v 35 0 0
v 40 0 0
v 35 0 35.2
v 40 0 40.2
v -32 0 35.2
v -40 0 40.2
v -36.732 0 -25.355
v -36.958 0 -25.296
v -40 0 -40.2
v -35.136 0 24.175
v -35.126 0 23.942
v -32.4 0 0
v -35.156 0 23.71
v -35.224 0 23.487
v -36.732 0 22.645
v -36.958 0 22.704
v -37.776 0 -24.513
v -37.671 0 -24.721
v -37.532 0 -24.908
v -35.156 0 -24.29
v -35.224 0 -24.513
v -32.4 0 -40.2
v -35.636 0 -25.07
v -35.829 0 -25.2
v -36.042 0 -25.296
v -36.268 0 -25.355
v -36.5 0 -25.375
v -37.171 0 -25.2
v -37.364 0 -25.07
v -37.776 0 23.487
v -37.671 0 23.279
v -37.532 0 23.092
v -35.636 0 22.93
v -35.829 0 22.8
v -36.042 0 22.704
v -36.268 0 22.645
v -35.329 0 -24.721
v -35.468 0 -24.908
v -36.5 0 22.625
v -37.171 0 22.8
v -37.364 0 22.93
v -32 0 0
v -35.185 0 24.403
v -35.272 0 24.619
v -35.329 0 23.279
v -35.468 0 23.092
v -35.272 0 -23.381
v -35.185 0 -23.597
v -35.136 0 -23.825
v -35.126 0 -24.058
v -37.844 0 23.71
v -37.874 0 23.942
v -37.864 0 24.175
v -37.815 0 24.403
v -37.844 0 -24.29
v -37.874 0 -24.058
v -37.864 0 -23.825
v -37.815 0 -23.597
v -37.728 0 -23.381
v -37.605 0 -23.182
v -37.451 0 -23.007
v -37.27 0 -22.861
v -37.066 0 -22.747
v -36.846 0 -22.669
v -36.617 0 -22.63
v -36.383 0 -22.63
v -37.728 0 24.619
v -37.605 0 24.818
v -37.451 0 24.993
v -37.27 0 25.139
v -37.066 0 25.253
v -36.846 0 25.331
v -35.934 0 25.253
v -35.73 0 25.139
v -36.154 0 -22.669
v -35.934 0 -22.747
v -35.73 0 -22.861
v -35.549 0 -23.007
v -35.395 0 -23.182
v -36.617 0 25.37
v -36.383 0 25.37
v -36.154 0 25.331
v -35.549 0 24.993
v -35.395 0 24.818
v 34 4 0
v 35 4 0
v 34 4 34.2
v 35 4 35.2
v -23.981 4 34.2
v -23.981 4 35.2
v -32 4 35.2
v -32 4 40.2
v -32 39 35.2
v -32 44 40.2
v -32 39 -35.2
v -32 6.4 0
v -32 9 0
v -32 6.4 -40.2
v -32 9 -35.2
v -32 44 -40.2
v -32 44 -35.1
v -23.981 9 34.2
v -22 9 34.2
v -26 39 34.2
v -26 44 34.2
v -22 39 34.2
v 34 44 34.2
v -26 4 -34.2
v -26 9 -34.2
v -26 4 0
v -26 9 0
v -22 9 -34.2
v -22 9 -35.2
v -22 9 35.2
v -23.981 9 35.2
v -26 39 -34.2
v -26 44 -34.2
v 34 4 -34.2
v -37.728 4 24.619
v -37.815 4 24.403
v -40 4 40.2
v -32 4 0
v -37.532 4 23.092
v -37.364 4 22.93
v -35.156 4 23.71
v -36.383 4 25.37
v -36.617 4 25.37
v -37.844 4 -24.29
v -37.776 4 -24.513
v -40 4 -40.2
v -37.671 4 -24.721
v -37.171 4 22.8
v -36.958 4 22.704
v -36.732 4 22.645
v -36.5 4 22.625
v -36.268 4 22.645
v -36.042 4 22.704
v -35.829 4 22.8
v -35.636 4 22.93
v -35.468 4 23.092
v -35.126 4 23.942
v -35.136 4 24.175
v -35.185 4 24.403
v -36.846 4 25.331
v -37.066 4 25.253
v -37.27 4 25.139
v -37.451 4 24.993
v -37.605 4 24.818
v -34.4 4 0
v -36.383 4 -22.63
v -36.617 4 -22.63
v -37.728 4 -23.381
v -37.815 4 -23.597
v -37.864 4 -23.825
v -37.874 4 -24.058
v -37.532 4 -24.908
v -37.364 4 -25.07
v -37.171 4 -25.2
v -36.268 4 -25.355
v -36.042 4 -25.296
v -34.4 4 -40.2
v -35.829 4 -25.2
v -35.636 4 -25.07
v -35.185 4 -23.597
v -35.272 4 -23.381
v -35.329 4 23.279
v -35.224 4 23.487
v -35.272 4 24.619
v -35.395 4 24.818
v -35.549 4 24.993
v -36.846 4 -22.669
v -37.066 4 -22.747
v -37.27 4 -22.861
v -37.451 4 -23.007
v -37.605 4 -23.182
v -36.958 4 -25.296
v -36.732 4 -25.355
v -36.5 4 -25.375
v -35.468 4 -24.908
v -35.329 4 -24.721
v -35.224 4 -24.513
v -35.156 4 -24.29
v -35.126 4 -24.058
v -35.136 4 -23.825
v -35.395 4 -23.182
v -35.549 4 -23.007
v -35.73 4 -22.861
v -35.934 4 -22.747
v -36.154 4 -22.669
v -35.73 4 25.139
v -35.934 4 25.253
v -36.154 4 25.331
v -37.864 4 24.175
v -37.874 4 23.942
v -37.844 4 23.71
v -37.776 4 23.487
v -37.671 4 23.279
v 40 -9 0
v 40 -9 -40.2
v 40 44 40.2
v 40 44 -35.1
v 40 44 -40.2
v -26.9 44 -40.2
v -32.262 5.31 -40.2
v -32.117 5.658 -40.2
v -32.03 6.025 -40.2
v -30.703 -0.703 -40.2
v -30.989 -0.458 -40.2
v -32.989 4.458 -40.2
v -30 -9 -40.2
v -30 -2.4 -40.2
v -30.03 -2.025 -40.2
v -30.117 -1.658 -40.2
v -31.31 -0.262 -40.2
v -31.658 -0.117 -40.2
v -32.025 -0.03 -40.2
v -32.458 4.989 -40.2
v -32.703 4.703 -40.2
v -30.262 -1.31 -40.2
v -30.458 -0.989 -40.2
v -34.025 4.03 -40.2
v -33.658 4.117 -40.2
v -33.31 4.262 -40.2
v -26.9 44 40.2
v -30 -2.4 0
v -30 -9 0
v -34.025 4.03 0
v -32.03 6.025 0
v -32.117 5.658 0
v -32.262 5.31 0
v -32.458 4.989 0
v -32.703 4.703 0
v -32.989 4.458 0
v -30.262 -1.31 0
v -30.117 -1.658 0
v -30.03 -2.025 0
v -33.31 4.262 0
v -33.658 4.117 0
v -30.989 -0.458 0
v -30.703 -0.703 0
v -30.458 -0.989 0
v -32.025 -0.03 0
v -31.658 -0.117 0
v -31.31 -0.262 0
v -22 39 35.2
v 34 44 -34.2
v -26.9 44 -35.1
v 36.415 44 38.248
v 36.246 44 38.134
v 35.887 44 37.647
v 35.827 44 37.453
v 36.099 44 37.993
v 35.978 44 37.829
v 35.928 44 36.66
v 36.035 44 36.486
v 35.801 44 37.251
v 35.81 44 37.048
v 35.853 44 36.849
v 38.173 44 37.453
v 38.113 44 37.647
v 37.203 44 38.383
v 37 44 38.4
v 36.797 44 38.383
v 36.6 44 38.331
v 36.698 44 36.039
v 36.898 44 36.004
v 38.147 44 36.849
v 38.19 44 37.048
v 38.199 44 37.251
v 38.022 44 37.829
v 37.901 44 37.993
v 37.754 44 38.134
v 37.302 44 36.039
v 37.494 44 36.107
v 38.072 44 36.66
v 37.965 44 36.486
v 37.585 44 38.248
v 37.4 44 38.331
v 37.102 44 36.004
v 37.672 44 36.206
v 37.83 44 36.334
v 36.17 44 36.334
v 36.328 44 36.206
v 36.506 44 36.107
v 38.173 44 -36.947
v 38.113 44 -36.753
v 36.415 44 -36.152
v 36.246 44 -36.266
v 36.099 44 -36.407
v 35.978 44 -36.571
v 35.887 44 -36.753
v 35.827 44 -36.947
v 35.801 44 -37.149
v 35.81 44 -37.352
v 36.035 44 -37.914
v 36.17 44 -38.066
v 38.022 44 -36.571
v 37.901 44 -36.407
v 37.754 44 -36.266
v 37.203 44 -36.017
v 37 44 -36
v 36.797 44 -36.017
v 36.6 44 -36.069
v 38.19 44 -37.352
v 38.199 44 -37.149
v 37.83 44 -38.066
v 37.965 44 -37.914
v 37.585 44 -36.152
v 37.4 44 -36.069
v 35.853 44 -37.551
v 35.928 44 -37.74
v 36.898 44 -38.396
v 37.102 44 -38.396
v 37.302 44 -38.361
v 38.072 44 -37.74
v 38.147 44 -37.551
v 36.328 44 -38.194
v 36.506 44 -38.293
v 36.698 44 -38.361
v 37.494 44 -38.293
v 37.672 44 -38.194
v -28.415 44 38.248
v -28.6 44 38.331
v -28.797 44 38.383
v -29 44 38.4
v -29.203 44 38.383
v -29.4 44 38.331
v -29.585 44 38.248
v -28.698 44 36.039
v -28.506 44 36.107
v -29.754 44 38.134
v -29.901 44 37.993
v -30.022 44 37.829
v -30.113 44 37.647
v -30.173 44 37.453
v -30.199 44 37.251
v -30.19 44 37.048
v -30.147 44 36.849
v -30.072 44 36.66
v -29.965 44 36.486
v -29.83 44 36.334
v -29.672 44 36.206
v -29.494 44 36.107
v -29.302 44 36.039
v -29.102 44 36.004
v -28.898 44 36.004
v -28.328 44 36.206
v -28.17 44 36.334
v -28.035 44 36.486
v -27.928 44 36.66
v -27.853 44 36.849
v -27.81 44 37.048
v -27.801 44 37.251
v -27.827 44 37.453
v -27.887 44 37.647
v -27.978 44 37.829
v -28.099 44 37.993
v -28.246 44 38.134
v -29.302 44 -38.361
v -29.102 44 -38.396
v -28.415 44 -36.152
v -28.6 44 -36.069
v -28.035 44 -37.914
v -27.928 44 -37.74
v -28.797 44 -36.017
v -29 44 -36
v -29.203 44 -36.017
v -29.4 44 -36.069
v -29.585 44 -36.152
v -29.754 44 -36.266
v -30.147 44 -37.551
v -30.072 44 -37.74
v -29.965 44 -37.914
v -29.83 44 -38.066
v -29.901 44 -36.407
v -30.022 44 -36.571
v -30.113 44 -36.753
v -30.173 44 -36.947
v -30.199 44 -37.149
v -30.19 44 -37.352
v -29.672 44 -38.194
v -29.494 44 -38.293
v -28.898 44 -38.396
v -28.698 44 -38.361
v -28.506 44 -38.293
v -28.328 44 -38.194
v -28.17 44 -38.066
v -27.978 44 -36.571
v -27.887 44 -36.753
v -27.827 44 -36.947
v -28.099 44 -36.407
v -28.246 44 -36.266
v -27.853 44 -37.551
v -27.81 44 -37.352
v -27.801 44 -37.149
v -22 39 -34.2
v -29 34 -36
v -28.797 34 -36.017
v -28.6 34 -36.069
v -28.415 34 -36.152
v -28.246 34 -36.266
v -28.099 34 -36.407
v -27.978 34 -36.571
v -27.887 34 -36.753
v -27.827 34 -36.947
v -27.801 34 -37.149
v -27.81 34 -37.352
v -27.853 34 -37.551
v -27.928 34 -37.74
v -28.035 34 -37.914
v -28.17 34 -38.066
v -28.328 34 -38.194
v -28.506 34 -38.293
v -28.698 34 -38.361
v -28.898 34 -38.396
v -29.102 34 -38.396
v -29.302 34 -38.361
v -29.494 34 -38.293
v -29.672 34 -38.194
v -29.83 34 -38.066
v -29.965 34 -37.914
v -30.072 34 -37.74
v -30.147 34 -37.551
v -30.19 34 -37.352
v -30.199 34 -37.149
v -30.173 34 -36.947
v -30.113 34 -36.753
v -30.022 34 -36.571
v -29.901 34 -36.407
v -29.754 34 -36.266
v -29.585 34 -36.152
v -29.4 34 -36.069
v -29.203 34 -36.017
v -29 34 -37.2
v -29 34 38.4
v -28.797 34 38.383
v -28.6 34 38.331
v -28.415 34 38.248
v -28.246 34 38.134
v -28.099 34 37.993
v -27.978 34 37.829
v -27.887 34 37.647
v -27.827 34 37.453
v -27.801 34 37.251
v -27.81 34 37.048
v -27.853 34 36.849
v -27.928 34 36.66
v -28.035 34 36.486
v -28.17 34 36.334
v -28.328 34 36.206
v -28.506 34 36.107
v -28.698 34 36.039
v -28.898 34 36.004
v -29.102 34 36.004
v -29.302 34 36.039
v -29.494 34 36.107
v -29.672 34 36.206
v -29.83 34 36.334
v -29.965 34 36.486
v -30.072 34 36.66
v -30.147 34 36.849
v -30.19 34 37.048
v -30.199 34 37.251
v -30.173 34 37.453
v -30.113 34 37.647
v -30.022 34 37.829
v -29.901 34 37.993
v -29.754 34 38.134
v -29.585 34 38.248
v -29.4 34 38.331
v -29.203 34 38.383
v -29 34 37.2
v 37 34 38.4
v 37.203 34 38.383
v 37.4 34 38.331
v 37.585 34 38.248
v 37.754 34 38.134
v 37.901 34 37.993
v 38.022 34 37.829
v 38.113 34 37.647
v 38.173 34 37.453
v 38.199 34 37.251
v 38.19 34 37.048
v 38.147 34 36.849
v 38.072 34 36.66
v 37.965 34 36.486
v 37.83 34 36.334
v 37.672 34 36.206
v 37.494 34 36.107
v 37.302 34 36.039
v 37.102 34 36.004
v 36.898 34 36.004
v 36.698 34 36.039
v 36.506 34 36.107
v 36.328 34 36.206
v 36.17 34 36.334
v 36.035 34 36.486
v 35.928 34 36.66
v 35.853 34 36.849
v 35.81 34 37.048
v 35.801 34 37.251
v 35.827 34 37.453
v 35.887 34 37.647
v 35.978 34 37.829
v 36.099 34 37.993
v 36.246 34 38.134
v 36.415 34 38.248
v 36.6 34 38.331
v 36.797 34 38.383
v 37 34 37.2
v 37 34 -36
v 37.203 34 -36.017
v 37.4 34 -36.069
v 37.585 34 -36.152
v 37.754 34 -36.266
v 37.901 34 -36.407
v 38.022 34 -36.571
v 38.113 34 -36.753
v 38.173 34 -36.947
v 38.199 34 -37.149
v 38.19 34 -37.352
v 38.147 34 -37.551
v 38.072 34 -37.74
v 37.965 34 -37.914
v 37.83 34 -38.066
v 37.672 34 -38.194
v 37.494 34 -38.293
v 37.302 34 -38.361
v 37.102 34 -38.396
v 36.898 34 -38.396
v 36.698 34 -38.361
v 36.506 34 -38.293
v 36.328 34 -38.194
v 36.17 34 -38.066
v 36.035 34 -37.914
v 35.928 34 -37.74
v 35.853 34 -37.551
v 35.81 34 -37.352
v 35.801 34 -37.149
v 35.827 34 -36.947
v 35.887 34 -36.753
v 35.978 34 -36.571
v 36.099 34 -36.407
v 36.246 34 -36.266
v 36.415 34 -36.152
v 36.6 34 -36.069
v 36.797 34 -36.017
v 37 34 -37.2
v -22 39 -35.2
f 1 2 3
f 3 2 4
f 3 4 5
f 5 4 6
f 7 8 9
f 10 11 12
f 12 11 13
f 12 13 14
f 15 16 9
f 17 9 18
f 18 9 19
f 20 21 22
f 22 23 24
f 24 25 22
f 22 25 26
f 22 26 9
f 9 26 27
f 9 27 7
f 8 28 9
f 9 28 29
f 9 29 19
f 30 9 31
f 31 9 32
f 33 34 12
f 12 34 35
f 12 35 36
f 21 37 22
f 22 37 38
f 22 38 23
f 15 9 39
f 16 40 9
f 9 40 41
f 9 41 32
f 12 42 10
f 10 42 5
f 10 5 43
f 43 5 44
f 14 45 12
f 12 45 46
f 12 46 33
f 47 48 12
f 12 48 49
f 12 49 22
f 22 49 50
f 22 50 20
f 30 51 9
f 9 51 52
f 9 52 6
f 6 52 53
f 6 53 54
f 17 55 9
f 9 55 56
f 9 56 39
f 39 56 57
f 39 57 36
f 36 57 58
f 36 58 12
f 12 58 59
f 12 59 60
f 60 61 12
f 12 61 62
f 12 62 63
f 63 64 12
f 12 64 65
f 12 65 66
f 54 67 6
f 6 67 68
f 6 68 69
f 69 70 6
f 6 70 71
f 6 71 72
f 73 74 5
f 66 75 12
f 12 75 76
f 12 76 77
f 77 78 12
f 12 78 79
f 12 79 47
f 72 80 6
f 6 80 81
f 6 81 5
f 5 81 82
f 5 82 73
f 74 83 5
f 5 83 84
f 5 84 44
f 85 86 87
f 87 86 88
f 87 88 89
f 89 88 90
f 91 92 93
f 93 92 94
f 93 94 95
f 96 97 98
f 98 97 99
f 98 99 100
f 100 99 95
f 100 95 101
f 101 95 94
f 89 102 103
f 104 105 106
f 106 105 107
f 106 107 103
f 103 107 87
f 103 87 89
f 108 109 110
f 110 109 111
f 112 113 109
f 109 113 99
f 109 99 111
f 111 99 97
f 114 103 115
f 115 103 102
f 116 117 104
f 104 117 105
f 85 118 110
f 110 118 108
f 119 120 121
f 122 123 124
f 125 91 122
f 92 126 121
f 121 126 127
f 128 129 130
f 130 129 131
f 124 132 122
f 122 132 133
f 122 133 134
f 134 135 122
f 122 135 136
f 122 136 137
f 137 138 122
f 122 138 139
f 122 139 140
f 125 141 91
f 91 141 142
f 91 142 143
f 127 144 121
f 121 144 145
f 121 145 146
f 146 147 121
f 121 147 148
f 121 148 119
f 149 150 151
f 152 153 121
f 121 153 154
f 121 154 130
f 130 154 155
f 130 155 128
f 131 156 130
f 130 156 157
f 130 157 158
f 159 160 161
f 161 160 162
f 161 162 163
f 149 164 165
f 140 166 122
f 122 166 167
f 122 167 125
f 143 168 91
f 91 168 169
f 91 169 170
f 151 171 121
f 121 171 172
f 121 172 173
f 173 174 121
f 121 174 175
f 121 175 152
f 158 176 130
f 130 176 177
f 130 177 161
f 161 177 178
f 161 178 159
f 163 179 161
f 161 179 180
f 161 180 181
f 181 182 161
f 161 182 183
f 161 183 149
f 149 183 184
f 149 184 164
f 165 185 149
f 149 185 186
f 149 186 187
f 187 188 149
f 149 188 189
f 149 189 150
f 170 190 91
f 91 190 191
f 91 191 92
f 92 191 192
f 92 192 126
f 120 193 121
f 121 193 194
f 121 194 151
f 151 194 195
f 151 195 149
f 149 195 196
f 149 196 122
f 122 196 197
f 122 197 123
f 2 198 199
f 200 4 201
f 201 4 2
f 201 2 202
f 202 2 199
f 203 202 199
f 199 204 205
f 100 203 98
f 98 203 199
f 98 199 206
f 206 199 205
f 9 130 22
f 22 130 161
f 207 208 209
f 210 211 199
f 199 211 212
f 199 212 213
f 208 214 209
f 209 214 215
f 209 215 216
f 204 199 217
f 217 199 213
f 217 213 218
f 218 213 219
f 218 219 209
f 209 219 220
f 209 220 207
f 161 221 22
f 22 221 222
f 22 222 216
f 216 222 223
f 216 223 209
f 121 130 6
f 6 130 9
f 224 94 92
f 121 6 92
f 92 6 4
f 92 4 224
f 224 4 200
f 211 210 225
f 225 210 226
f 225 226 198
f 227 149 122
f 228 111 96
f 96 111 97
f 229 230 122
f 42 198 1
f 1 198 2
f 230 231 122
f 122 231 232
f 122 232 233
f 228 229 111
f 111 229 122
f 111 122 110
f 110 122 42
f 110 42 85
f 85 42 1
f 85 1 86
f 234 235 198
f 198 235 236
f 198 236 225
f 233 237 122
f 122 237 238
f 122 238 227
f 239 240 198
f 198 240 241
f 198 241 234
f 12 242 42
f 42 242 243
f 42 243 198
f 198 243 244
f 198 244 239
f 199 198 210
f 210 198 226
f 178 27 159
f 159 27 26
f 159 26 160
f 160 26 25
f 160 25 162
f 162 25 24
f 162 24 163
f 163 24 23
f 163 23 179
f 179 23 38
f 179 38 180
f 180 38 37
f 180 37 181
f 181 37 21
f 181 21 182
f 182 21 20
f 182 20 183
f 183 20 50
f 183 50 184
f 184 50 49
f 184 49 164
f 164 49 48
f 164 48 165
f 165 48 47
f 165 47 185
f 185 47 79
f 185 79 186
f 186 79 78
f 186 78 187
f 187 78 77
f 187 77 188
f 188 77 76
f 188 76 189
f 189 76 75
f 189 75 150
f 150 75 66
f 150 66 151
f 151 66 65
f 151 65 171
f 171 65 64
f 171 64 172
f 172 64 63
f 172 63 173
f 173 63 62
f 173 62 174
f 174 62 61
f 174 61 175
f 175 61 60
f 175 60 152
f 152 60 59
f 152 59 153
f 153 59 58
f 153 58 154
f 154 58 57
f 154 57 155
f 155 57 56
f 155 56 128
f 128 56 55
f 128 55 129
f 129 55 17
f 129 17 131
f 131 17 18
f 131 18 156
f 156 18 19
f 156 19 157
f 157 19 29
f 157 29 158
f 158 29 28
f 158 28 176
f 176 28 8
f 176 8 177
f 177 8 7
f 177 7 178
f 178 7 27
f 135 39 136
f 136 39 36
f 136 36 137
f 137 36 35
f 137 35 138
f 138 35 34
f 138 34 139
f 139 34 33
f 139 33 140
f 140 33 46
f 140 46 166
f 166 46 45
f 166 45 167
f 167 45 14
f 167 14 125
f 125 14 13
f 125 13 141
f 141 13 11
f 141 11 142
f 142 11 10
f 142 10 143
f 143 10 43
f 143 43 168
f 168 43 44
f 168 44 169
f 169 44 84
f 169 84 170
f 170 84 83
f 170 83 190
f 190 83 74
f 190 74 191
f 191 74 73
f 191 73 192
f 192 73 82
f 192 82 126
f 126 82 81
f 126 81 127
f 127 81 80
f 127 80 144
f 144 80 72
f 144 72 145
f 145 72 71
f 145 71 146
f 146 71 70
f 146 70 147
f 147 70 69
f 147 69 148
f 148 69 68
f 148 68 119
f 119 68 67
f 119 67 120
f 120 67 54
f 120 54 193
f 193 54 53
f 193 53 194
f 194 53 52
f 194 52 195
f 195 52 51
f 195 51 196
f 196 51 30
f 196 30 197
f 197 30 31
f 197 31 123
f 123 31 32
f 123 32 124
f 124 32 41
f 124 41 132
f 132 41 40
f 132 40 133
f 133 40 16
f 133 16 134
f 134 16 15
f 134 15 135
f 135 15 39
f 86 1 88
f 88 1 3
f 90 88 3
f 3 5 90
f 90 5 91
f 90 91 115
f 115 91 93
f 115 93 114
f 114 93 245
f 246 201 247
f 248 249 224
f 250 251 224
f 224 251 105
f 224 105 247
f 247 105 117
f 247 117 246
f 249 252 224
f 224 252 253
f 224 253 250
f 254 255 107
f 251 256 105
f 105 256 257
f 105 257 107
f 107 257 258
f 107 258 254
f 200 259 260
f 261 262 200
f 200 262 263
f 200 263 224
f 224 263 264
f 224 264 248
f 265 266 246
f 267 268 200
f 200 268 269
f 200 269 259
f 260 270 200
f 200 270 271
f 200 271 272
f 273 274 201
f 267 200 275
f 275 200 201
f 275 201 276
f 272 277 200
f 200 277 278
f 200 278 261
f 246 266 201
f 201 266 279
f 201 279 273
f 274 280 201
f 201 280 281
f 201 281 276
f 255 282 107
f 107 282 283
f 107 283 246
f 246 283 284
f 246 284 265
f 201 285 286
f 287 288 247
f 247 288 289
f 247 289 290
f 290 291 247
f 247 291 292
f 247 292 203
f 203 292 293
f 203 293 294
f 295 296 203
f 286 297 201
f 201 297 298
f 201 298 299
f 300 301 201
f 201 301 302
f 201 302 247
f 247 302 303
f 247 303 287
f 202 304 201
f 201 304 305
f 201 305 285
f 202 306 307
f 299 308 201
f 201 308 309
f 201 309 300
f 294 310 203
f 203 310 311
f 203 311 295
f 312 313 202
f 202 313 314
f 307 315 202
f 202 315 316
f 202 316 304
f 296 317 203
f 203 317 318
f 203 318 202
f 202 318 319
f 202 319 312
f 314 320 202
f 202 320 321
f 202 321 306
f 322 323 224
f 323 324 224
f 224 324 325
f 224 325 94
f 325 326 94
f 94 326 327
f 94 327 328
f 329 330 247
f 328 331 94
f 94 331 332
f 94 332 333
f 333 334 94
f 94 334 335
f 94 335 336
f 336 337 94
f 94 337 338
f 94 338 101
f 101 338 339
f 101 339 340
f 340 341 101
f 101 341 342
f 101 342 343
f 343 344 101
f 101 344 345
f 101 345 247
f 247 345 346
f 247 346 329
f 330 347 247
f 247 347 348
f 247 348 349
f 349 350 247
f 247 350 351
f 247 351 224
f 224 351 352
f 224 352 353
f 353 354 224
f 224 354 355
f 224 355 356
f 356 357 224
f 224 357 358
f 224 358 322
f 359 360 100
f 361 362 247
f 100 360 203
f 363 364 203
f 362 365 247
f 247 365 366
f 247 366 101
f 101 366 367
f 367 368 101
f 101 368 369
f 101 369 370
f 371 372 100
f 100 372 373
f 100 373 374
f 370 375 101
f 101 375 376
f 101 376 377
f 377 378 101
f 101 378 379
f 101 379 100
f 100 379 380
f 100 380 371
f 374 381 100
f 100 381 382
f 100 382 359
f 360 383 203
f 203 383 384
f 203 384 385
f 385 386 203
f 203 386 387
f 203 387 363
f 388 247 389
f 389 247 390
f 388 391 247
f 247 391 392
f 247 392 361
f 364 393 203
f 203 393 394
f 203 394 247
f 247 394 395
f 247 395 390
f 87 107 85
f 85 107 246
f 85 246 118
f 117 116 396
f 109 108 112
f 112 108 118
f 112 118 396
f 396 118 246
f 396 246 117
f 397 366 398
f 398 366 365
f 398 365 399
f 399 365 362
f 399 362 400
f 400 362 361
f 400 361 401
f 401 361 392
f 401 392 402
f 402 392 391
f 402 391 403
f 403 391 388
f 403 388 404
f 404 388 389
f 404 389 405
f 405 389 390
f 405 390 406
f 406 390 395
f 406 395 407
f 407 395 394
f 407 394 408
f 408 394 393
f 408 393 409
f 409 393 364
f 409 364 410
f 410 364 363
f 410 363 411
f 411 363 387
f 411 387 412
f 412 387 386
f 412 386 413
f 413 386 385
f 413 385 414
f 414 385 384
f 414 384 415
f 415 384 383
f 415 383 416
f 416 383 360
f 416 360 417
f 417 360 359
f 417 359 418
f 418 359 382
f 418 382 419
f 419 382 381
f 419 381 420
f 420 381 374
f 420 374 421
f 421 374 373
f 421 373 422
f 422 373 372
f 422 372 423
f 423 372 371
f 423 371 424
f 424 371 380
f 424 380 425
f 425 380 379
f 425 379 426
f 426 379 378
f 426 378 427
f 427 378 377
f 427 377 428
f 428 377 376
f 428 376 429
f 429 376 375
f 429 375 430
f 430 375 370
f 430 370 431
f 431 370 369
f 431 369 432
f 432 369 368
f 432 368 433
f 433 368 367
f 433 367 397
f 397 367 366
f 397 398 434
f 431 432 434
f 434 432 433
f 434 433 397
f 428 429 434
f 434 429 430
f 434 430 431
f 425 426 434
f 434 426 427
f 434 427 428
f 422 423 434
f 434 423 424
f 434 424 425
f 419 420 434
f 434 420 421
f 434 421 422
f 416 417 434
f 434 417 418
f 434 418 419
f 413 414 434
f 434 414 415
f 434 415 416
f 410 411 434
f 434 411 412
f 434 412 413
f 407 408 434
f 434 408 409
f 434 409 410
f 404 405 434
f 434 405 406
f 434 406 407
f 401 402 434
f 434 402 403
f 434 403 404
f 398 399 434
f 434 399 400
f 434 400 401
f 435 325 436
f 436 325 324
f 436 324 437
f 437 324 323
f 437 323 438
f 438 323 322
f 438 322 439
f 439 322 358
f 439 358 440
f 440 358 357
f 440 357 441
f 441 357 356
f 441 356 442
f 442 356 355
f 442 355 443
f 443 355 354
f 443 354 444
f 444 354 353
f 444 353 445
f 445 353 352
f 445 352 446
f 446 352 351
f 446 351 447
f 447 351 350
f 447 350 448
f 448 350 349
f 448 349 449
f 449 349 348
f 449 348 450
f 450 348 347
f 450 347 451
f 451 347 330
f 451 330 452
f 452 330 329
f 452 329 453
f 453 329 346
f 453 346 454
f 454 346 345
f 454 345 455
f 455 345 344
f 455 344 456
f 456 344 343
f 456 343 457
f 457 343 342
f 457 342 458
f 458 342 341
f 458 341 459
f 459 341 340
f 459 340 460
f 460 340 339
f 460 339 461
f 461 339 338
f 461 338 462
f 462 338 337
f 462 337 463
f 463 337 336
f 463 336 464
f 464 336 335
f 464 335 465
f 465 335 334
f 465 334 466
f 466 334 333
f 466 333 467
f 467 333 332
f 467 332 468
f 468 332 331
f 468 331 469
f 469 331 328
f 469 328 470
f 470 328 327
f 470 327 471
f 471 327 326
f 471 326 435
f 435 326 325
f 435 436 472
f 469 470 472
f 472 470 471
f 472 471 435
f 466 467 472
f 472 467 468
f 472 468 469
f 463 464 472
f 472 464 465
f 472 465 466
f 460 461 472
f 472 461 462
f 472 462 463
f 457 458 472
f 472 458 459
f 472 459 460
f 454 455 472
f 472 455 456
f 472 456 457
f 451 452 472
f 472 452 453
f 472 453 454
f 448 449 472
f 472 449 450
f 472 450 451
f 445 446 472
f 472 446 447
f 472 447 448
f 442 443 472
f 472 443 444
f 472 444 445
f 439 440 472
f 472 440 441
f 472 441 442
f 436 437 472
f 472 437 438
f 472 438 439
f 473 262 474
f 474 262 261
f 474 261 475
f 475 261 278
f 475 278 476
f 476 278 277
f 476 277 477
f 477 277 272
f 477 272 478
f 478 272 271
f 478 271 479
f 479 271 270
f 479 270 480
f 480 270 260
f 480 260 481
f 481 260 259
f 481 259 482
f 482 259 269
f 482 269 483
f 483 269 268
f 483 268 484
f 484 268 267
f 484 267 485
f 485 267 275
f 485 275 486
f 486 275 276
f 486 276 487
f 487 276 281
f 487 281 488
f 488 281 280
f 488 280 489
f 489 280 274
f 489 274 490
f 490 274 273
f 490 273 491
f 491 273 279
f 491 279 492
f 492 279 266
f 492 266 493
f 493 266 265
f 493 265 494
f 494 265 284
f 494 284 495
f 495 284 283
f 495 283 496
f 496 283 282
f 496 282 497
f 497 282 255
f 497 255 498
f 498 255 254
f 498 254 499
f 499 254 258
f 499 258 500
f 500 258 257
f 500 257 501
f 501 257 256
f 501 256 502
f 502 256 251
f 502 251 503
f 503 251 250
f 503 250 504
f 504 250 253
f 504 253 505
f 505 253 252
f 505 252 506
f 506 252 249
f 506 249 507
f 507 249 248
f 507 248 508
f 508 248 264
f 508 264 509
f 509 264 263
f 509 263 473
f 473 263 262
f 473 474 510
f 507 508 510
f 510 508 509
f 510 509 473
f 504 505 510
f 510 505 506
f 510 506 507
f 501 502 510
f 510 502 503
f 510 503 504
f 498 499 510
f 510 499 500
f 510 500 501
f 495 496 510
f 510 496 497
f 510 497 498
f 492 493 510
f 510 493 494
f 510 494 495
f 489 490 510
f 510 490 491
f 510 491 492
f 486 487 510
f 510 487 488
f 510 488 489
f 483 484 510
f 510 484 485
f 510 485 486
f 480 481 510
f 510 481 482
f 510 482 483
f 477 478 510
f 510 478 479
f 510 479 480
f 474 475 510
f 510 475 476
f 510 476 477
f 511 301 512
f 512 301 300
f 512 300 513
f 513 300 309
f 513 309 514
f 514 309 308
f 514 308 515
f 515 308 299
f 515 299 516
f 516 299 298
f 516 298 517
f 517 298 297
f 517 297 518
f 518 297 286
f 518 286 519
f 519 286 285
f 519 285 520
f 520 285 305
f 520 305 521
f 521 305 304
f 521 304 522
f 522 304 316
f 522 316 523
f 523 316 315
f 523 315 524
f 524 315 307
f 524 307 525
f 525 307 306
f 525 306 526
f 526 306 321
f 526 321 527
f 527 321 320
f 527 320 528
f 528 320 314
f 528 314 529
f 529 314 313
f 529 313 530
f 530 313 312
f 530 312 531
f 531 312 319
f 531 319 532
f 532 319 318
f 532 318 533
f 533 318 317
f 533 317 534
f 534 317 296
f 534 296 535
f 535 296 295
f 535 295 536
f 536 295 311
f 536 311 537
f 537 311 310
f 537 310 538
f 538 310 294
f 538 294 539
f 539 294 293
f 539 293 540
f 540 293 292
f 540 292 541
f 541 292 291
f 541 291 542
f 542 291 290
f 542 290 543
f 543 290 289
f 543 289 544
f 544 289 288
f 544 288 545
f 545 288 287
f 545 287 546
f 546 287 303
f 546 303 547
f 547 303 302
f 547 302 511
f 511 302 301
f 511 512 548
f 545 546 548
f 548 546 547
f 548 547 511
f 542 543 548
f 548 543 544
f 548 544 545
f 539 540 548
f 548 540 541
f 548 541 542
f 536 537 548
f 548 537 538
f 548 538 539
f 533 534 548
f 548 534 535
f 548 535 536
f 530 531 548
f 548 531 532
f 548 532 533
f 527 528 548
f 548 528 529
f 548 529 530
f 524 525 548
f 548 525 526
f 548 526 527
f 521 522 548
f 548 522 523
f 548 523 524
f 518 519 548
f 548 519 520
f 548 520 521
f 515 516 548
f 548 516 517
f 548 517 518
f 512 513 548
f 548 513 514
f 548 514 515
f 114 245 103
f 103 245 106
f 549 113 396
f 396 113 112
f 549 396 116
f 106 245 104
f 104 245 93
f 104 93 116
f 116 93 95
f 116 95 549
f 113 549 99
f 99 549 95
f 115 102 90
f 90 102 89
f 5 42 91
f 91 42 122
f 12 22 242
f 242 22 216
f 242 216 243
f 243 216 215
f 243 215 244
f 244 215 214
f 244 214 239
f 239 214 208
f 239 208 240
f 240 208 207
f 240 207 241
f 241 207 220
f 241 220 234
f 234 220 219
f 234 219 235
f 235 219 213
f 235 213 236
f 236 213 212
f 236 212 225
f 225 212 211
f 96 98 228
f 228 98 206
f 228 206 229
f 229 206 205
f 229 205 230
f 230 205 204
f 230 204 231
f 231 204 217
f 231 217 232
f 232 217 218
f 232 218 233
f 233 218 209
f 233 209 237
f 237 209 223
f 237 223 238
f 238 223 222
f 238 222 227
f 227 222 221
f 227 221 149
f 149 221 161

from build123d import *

# Parameters (mm, degrees)
SKETCH1_W           = 80
SKETCH1_H           = 80.4
BOSS_EXTRUDE1_DEPTH = 4
SKETCH3_W           = 70
SKETCH3_H           = 40.2
BOSS_EXTRUDE3_DEPTH = 9
SKETCH4_R           = 1.375
CUT_EXTRUDE1_DEPTH  = 19
CUT_EXTRUDE4_REACH  = 60.181
SKETCH6_W           = 62
SKETCH6_H           = 35.2
SKETCH7_W           = 72
SKETCH7_H           = 80.4
SKETCH7_W_2         = 60
SKETCH7_H_2         = 68.4
BOSS_EXTRUDE4_DEPTH = 40
SKETCH9_R           = 1.2
CUT_EXTRUDE5_DEPTH  = 10
SKETCH10_W          = 70.4
SKETCH10_H          = 30
CUT_EXTRUDE6_DEPTH  = 10
CUT_EXTRUDE7_DEPTH  = 17
FILLET1_R           = 2.4


with BuildPart() as part:
    # Sketch1 → Boss-Extrude1 (new body)
    with BuildSketch(Plane(origin=(0, 0, 0), x_dir=(1, 0, 0), z_dir=(0, 1, 0))):
        Rectangle(SKETCH1_W, SKETCH1_H)
    extrude(amount=BOSS_EXTRUDE1_DEPTH)

    # Sketch3 → Boss-Extrude3 (add)
    with BuildSketch(Plane.XZ):
        with Locations((5, -20.1)):
            Rectangle(SKETCH3_W, SKETCH3_H)
    extrude(amount=BOSS_EXTRUDE3_DEPTH)

    # Sketch4 → Cut-Extrude1 (cut)
    with BuildSketch(Plane.XZ.offset(9)):
        with Locations(Location((-36.5, 24, 0), (0, 0, 270))):
            Circle(SKETCH4_R)
        with Locations(Location((-36.5, -24, 0), (0, 0, 270))):
            Circle(SKETCH4_R)
    extrude(amount=-CUT_EXTRUDE1_DEPTH, mode=Mode.SUBTRACT)

    # Sketch6 → Cut-Extrude4 (cut, up to next)
    with BuildSketch(Plane(origin=(0, 4, 0), x_dir=(1, 0, 0), z_dir=(0, 1, 0)), mode=Mode.PRIVATE) as cut_extrude4_sk1:
        with Locations((4, -17.6)):
            Rectangle(SKETCH6_W, SKETCH6_H)
    cut_extrude4_tool1 = extrude(cut_extrude4_sk1.sketch, amount=-CUT_EXTRUDE4_REACH, mode=Mode.PRIVATE) & part.part
    add(cut_extrude4_tool1.solids().sort_by_distance((4, 4, 17.6))[0], mode=Mode.SUBTRACT)

    # Sketch7 → Boss-Extrude4 (add)
    with BuildSketch(Plane.XZ.offset(-4)):
        with Locations((4, 0)):
            Rectangle(SKETCH7_W, SKETCH7_H)
        with Locations((4, 0)):
            Rectangle(SKETCH7_W_2, SKETCH7_H_2, mode=Mode.SUBTRACT)
    extrude(amount=-BOSS_EXTRUDE4_DEPTH)

    # Sketch9 → Cut-Extrude5 (cut)
    with BuildSketch(Plane(origin=(0, 44, 0), x_dir=(1, 0, 0), z_dir=(0, 1, 0))):
        with Locations(Location((-29, 37.2, 0), (0, 0, 270))):
            Circle(SKETCH9_R)
        with Locations(Location((37, 37.2, 0), (0, 0, 270))):
            Circle(SKETCH9_R)
        with Locations(Location((37, -37.2, 0), (0, 0, 270))):
            Circle(SKETCH9_R)
        with Locations(Location((-29, -37.2, 0), (0, 0, 270))):
            Circle(SKETCH9_R)
    extrude(amount=-CUT_EXTRUDE5_DEPTH, mode=Mode.SUBTRACT)

    # Sketch10 → Cut-Extrude6 (cut)
    with BuildSketch(Plane.ZY.offset(32)):
        with Locations((0, 24)):
            Rectangle(SKETCH10_W, SKETCH10_H)
    extrude(amount=-CUT_EXTRUDE6_DEPTH, mode=Mode.SUBTRACT)

    # Sketch11 → Cut-Extrude7 (cut)
    with BuildSketch(Plane(origin=(0, 9, 0), x_dir=(1, 0, 0), z_dir=(0, 1, 0))):
        Polygon((-32, 0), (-32, -35.2), (-23.981492028, -35.2), (-23.981492028, -34.2), (-26, -34.2), (-26, 0), align=None)
    extrude(amount=-CUT_EXTRUDE7_DEPTH, mode=Mode.SUBTRACT)

    # Fillet1
    # the kernel refuses this fillet: 2.4 mm, written as the material it adds along each edge
    with BuildSketch(Plane(origin=(-32, 4, 0), x_dir=(0, 1, 0), z_dir=(0, 0, -1)), Plane(origin=(-30, 0, 0), x_dir=(-1, 0, 0), z_dir=(0, 0, -1))) as fillet1_piece_1:
        with BuildLine():
            CenterArc((FILLET1_R, -FILLET1_R), FILLET1_R, 90, 90)
            Line((0, -FILLET1_R), (0, 0))
            Line((0, 0), (FILLET1_R, 0))
        make_face()
    extrude(amount=40.2)


solid = part.part
